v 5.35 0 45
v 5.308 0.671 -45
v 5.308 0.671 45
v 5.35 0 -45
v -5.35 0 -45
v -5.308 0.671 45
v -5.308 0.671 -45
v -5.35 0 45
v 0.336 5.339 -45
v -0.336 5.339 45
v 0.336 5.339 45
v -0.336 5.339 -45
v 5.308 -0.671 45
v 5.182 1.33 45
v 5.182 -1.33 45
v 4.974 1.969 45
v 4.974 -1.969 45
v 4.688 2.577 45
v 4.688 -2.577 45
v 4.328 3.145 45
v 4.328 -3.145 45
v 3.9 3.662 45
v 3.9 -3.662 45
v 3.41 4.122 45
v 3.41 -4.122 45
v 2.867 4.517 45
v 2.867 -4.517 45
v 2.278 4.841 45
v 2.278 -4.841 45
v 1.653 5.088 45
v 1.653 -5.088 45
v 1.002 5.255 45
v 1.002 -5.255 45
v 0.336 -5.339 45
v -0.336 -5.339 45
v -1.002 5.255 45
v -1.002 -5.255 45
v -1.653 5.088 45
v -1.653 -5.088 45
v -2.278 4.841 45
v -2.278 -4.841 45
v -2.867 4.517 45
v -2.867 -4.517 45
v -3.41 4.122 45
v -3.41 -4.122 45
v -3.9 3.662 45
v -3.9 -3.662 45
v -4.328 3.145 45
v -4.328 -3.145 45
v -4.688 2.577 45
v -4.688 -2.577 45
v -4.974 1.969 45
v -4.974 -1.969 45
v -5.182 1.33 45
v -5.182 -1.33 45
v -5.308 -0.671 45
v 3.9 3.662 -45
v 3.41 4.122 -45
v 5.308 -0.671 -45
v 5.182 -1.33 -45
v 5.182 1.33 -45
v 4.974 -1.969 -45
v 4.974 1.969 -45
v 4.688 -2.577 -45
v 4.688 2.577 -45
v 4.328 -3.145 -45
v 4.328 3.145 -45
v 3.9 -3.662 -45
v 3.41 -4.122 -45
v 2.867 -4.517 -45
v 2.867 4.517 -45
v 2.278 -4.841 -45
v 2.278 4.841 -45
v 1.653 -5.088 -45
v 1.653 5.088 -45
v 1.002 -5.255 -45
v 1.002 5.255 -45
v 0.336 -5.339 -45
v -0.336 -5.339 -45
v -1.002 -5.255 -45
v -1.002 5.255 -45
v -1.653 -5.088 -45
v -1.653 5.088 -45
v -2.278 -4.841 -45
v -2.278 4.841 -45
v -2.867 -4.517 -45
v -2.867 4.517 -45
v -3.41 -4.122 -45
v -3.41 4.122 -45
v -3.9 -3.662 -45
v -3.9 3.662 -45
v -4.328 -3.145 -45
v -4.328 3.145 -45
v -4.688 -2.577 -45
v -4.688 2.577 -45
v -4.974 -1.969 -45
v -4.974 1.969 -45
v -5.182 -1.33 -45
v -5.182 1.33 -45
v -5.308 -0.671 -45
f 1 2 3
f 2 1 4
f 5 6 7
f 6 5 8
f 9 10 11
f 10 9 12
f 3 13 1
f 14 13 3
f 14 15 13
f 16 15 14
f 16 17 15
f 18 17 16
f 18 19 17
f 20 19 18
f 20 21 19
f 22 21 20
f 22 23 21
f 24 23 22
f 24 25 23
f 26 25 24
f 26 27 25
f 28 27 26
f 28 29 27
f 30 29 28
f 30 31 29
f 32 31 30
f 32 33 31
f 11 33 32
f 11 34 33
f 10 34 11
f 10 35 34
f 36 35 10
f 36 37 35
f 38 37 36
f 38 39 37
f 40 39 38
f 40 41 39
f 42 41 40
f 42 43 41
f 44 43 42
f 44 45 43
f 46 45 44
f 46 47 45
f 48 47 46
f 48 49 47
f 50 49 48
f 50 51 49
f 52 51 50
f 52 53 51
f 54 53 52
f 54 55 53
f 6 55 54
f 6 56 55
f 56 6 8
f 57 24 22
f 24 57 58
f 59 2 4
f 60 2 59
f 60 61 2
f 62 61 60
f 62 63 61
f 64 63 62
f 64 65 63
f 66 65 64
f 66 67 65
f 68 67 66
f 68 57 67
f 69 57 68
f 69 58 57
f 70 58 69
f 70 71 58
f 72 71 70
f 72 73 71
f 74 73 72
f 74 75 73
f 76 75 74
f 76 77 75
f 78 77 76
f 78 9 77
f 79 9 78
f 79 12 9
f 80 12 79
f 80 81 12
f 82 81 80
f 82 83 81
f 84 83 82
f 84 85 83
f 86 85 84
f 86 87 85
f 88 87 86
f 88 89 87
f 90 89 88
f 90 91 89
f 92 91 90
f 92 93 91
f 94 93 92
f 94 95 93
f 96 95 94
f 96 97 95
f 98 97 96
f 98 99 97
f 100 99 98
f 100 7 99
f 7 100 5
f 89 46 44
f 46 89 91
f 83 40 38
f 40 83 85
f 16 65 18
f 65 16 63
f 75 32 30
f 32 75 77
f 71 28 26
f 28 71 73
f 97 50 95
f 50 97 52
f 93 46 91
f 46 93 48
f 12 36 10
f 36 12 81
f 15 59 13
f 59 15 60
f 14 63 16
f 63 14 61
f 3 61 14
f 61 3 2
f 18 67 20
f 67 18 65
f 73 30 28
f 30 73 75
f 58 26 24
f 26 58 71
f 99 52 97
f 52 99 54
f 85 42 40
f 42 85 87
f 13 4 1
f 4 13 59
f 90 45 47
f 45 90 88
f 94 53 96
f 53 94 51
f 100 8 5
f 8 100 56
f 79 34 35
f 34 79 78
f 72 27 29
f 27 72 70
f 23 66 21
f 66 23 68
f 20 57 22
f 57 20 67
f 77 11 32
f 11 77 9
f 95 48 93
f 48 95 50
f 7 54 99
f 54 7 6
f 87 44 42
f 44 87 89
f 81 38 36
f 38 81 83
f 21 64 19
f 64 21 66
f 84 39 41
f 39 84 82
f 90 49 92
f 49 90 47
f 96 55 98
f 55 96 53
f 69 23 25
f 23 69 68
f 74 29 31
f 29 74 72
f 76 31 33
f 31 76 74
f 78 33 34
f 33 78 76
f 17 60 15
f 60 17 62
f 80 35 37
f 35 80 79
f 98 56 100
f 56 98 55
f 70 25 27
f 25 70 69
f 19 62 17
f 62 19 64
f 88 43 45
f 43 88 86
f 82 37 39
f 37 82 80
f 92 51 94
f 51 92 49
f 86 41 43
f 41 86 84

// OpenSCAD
$fn = 50;


difference() {
	union() {
		translate(v = [0, 0, -45.0000000000]) {
			cylinder(h = 90, r = 5.3500000000);
		}
	}
	union() {
		translate(v = [0, 0, -100.0000000000]) {
			cylinder(h = 200, r = 0);
		}
	}
}
